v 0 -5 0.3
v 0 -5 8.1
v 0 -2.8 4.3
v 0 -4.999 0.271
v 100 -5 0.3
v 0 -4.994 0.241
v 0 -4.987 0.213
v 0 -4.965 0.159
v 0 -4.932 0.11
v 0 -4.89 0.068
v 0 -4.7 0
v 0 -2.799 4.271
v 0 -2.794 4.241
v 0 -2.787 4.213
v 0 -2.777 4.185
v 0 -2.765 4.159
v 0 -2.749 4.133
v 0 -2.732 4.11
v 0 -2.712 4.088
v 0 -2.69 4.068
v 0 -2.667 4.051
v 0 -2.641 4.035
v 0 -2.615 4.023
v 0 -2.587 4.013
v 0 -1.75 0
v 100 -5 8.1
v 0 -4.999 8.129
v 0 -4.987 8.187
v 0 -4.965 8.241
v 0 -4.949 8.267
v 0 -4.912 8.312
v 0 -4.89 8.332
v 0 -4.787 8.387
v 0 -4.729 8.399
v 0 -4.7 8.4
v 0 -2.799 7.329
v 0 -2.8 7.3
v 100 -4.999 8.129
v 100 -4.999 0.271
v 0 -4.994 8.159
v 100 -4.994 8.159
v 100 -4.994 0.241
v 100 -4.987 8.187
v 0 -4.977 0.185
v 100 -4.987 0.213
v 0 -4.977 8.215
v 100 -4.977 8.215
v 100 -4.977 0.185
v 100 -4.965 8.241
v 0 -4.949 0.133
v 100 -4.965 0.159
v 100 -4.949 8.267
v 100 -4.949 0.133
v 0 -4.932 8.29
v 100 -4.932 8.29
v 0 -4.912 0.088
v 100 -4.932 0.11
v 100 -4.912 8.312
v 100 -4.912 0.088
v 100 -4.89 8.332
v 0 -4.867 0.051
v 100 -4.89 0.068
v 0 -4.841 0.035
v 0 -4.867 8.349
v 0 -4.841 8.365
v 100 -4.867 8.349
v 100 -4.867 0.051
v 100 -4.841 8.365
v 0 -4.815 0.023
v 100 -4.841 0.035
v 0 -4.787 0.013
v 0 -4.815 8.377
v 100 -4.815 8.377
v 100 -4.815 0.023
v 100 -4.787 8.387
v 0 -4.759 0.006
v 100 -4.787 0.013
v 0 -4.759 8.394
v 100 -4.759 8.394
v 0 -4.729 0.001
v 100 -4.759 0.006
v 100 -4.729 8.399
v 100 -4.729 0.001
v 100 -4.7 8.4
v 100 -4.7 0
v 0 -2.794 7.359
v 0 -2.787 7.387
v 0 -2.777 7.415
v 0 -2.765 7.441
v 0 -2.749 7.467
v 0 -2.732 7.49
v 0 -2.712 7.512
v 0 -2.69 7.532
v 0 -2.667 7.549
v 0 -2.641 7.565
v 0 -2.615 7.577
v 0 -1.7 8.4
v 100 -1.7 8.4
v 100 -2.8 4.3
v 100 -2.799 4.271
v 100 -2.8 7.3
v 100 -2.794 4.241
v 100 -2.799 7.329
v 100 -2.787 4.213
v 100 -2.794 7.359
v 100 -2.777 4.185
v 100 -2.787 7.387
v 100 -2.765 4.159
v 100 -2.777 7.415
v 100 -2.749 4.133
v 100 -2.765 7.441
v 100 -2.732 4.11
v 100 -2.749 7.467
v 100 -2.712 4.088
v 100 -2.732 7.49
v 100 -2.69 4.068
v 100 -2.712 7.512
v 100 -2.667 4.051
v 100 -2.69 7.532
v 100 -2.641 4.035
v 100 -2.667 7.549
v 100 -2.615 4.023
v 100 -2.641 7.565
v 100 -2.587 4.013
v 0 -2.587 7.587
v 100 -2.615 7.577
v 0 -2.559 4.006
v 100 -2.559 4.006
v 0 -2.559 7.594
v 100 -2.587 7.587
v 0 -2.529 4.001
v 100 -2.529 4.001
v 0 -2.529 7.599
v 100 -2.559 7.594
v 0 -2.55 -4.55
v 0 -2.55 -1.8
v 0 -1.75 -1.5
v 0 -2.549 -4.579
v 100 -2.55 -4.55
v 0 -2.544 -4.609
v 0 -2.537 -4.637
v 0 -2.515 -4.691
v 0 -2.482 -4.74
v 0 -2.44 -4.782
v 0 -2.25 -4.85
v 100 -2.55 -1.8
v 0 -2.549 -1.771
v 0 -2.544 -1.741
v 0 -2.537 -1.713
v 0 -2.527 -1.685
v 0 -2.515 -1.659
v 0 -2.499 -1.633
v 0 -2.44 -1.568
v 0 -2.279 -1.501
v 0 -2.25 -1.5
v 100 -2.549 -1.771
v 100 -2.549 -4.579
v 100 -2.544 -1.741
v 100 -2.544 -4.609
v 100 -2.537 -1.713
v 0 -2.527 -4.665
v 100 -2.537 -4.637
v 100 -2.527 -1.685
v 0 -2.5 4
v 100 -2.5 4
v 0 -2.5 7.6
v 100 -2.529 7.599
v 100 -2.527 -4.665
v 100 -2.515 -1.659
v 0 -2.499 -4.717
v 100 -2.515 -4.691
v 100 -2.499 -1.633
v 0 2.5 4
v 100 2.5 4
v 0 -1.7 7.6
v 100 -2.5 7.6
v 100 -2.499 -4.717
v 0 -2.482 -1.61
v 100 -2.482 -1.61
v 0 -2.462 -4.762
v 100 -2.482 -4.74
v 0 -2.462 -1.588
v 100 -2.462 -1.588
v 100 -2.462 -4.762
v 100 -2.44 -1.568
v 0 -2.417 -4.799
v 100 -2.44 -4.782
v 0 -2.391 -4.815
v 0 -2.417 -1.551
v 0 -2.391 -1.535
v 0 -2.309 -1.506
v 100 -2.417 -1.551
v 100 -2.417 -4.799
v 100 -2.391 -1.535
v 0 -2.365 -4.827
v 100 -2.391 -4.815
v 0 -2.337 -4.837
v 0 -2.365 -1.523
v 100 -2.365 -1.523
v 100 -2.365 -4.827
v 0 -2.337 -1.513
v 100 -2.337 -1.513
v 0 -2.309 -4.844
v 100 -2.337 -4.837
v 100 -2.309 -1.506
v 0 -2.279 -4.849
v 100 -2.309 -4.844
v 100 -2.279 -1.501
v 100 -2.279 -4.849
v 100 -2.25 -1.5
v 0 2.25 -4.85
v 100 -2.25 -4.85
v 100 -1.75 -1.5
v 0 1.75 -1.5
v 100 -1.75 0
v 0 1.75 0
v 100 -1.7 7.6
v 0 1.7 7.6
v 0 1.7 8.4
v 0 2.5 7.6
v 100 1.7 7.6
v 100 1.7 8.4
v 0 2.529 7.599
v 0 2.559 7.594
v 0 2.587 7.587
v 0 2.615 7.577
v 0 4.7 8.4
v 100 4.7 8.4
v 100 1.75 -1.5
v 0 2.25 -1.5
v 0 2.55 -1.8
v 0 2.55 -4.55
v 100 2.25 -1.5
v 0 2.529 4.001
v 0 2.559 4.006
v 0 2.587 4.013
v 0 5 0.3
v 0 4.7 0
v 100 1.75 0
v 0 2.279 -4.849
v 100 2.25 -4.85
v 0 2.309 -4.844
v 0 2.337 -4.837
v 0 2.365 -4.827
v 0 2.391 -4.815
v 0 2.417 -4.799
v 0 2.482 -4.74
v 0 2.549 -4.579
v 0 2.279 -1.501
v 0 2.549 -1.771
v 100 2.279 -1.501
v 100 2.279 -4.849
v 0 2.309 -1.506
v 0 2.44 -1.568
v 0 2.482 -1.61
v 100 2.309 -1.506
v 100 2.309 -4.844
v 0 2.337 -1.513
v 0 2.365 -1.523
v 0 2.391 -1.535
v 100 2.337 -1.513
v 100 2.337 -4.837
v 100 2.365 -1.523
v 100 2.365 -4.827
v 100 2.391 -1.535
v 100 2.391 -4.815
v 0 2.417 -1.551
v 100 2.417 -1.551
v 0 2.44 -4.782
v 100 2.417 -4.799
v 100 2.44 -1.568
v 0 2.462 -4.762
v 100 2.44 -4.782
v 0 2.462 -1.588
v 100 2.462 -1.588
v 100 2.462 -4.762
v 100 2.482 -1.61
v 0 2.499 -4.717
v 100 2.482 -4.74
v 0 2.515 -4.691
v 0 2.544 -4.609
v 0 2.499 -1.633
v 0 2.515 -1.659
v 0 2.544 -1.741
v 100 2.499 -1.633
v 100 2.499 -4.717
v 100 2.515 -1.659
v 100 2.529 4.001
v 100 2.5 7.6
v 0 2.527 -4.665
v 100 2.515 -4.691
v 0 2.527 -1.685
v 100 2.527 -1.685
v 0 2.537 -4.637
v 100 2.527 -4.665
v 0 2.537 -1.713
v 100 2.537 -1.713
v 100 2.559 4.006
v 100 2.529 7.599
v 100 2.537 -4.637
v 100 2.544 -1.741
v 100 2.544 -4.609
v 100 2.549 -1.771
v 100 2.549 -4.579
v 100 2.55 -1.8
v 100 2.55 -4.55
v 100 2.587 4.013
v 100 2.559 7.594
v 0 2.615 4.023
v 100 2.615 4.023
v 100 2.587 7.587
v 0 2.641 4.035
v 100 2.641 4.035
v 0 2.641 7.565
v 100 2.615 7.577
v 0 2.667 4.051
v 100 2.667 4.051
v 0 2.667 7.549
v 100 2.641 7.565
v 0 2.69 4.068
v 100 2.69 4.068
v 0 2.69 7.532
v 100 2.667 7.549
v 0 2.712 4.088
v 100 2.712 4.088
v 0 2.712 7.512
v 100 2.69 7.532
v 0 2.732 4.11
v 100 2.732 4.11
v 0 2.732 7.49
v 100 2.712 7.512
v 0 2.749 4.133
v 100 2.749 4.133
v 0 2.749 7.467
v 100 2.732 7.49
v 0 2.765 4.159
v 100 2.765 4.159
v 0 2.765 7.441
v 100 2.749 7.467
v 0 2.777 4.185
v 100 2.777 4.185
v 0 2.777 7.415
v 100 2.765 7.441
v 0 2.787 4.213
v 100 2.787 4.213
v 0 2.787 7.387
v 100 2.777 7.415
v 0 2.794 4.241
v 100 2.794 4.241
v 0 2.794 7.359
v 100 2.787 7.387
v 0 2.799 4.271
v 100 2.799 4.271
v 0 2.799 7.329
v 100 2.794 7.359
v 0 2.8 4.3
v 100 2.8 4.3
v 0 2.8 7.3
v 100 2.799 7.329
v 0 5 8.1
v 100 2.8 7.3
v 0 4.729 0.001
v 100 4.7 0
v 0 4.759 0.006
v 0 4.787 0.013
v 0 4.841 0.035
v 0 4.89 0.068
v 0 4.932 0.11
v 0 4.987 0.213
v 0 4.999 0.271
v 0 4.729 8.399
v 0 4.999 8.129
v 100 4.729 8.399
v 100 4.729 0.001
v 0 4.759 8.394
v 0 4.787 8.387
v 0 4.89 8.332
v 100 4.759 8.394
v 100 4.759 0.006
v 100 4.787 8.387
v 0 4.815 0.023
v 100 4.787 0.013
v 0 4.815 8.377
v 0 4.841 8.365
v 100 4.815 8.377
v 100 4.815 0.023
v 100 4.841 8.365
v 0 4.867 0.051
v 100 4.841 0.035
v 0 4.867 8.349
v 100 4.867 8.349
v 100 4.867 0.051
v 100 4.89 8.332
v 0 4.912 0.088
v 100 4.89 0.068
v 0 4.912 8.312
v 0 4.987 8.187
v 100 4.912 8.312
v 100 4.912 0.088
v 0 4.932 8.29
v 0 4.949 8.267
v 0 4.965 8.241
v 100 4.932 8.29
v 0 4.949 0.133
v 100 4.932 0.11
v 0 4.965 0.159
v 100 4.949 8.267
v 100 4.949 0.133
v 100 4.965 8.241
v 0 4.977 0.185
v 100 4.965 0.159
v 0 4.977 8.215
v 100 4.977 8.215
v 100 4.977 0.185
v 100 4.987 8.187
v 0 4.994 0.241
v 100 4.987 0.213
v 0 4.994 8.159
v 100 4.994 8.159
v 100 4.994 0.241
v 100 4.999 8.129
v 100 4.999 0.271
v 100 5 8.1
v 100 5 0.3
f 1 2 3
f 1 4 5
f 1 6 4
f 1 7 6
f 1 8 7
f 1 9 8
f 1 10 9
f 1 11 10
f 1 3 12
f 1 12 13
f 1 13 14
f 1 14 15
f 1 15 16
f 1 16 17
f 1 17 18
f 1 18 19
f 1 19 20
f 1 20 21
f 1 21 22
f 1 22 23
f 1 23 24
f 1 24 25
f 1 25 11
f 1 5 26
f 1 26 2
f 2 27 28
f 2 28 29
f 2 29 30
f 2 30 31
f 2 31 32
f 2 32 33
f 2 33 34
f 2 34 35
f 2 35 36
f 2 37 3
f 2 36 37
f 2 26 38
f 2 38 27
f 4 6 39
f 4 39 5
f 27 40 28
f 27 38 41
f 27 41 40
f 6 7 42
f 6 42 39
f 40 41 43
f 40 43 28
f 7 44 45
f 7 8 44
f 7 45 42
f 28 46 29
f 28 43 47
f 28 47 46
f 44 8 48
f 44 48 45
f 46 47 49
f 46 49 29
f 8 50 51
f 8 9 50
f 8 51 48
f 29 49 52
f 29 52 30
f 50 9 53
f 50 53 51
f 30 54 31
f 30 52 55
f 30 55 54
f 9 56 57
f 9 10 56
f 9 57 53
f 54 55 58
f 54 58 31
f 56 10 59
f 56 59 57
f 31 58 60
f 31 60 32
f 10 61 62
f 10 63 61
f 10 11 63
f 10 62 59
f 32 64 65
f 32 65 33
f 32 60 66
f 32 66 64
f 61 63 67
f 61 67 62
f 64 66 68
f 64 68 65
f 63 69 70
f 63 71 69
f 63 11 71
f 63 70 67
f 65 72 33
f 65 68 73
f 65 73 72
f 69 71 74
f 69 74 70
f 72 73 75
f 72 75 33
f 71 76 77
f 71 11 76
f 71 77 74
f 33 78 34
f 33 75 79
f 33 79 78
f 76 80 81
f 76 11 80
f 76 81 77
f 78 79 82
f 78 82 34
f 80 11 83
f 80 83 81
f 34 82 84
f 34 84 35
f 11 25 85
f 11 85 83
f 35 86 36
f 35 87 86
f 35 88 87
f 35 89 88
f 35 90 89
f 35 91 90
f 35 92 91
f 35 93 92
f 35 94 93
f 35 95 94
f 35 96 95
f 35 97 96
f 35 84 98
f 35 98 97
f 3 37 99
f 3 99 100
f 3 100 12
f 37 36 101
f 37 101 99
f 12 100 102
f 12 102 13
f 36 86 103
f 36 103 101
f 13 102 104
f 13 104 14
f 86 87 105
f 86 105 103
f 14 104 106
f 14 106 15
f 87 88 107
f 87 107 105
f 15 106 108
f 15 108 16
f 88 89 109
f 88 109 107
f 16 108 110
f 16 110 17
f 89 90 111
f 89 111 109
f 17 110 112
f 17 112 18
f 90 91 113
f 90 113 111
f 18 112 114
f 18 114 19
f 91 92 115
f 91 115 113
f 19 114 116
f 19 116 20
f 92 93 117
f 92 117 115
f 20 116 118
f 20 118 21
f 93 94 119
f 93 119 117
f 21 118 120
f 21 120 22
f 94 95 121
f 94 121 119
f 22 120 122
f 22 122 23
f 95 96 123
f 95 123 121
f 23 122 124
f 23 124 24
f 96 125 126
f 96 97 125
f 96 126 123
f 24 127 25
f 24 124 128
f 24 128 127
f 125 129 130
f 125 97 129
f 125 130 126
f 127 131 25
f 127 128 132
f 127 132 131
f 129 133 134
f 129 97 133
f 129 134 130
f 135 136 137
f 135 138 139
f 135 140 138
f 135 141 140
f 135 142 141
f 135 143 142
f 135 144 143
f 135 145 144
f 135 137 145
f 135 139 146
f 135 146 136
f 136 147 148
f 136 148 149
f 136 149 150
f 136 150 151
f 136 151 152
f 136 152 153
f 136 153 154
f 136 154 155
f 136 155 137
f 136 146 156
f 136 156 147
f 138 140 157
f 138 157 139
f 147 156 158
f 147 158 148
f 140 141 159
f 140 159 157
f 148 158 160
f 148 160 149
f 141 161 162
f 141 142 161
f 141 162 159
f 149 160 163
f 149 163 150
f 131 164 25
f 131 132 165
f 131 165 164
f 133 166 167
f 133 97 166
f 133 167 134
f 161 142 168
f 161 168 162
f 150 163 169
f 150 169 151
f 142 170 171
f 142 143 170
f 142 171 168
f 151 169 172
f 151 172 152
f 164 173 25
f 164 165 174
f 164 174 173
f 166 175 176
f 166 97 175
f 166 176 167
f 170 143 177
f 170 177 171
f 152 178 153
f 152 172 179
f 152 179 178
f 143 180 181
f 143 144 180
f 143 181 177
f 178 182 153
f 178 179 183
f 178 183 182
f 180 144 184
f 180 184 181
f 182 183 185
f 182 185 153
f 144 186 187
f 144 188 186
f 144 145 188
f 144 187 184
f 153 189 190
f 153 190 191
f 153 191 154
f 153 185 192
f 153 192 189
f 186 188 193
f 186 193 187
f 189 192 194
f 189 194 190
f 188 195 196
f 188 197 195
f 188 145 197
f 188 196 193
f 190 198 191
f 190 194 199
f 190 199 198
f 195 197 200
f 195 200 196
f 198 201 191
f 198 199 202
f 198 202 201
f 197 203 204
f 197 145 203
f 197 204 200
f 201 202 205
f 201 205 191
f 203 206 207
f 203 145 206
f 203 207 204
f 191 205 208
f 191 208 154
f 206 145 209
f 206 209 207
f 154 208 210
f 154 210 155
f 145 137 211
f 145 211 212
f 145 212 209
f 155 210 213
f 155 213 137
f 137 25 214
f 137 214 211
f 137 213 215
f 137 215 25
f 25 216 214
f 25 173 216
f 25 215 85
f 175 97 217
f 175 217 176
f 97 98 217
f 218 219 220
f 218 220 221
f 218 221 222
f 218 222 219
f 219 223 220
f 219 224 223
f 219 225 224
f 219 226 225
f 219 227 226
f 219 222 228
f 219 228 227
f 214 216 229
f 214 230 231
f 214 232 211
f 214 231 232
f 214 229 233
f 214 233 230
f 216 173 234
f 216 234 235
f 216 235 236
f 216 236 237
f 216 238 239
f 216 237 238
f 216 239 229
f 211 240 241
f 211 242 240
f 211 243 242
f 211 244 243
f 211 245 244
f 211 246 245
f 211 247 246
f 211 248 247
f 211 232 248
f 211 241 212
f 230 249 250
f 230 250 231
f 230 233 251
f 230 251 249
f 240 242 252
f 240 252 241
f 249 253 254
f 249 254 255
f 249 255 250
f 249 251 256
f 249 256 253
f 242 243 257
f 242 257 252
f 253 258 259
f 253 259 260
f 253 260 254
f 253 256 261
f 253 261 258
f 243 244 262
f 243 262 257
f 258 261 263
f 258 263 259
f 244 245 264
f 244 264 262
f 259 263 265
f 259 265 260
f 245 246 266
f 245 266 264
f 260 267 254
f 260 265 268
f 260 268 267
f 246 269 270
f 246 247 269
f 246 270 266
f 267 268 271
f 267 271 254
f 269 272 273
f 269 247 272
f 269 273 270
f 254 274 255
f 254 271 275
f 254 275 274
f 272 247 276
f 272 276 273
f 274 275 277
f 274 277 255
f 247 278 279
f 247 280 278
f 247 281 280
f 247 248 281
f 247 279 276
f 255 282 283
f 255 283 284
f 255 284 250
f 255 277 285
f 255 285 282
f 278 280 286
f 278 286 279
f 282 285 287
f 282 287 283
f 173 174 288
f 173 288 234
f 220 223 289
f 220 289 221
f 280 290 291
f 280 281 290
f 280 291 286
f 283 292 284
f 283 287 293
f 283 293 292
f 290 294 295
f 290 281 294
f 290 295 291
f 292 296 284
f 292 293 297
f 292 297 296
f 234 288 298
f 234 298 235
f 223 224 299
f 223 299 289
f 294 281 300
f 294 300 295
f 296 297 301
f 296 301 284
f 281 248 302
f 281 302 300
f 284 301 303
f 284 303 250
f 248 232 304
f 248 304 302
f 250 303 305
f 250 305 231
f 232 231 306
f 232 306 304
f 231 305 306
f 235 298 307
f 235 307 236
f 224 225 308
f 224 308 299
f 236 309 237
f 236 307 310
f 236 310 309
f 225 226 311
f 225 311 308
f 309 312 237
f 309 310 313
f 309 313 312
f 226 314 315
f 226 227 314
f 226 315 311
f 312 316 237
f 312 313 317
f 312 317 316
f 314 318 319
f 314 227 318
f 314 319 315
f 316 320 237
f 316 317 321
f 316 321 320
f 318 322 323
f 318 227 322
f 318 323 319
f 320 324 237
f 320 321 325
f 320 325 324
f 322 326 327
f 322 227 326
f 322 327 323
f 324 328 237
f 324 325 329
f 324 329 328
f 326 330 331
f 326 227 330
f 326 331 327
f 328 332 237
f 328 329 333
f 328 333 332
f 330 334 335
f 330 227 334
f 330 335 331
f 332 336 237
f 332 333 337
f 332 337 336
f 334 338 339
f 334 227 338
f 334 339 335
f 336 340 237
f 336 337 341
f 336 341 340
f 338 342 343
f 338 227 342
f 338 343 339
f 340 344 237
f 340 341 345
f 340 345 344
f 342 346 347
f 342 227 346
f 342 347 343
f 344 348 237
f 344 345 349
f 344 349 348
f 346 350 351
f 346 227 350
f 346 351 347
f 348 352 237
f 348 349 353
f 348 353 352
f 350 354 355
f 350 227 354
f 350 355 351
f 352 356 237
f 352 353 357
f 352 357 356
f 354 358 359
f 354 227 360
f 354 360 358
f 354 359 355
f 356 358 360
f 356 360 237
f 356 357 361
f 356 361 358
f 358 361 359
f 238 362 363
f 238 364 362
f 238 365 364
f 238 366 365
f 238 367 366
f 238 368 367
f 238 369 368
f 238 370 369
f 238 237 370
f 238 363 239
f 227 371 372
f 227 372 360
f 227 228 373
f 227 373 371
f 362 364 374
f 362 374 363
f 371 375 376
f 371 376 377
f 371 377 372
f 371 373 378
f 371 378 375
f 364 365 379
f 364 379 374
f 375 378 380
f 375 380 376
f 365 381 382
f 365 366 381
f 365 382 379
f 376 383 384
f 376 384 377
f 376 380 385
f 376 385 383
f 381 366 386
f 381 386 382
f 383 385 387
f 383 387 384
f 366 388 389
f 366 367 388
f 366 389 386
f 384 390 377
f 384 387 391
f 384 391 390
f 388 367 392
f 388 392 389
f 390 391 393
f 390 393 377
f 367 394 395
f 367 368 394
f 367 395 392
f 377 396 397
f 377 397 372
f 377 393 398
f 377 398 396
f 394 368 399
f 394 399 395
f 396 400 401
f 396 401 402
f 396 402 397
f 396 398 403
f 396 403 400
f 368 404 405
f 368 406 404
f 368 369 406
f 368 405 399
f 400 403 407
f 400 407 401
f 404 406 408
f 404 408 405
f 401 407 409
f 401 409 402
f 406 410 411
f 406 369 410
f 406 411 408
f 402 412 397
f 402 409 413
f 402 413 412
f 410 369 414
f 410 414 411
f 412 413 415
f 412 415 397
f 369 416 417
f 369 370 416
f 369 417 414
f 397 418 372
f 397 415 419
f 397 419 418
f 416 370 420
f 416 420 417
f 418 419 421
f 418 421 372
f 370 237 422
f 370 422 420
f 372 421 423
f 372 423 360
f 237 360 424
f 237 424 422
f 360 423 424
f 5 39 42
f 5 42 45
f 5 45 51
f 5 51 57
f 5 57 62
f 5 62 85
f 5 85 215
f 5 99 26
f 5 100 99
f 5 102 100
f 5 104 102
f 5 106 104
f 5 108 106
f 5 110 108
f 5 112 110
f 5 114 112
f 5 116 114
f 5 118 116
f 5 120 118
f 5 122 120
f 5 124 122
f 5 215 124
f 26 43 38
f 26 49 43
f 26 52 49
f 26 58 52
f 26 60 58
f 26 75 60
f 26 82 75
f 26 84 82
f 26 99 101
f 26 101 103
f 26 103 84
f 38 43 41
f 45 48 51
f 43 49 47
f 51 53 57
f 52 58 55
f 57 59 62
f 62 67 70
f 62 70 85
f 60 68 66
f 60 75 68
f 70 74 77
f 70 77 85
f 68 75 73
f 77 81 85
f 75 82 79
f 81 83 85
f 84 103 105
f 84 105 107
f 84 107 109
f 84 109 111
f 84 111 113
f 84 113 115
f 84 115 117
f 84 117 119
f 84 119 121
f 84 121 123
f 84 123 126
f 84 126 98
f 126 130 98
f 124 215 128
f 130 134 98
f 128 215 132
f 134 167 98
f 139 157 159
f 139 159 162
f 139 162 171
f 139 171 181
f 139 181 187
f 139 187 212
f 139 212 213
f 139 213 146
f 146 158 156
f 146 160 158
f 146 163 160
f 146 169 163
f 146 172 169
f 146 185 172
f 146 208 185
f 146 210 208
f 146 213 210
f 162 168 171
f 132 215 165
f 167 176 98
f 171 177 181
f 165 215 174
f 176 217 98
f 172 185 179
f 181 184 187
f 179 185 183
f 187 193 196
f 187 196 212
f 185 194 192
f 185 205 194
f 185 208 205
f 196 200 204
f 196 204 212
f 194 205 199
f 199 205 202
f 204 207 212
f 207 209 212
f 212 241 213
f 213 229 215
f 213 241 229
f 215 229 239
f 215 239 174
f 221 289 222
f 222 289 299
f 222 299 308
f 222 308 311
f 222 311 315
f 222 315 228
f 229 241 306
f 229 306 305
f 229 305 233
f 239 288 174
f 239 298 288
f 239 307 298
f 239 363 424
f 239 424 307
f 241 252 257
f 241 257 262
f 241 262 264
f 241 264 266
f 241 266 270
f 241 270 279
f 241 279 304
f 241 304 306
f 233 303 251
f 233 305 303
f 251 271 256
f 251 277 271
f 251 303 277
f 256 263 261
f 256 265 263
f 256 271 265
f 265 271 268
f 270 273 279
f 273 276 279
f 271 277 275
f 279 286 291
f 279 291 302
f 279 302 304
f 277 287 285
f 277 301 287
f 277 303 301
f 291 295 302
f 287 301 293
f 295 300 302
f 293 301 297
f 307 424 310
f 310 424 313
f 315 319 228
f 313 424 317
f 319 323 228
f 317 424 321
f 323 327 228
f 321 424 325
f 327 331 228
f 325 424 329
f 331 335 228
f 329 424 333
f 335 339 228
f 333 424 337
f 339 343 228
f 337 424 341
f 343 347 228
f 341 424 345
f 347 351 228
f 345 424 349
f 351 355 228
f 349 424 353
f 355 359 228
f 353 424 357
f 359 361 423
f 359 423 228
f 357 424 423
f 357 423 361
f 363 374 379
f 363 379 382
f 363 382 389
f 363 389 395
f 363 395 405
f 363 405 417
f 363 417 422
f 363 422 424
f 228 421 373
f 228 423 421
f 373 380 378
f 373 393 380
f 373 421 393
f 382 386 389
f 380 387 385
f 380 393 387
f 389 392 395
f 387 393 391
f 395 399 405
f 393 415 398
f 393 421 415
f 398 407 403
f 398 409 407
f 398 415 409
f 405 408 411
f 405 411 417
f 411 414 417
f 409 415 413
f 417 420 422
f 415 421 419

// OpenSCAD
// Eurorack rail riser
//
// Slides into the threaded-strip channel of a standard Eurorack rail and
// carries a new captive channel on top for the threaded strip. Panels then
// rest on the riser's top face, so they sit `total_h` further out than on the
// bare rail (riser_height + strip_height + strip_lip). Use it to gain depth
// behind modules that are too deep for the case.
//
// Angled cases: where the row you raise meets an unraised neighbour at a
// bend toward the user (a curved desk case), the raised panel edges and the
// riser lean out over the neighbour's edge screws. They clear the
// neighbour's panels, but a screwdriver cannot reach those screws. The
// [Case junction] parameters echo the overlap and warn when it covers the
// screw heads.
//
// Coordinates: X = along the rail, Y = across the rail face, Z = away from
// the rail face. Origin is on the rail's outer face centerline, at the near
// end.
//
// Cross-section (Y-Z plane, looking down +X):
//
//           +--+  +--+            <-- z = total_h               (top)
//           |  +--+  |                top retaining lip (strip_lip)
//           |  strip |            <-- z = riser_height + strip_height
//           | cavity |                (holds the threaded strip)
//           |        |
//           |        |            <-- z = riser_height
//           |  solid |                riser (riser_height tall)
//    =======+--+  +--+=======     <-- z = 0  (rail outer face)
//     rail lip |  |  rail lip         neck through the rail's slot
//           +--+  +--+            <-- z = -rail_lip
//           |  slider|                fills the rail's strip channel
//           +--------+            <-- z = -(rail_lip + rail_channel_depth)
//
// The default channel sizes copy the strip cavity in 2020-adapter.scad,
// which already fits the strip. MEASURE YOUR RAIL before printing: the
// rail_* values are estimates, and the rail's slot opening and lip
// thickness differ between makers (Tiptop, Doepfer, Vector, no-name).
//
// Print orientation: lay the part on its side (one Y face on the bed). The
// cavity roofs then bridge a short span, and the neck, which takes the pull
// of the module screws, has its layers running along the load.
//
// License: MIT, Copyright (c) 2026 Madelyn Yeary. See LICENSE.md at the repo root.

/* [Length] */
// Rail length (mm). 1 HP = 5.08 mm; 84HP = 426.7, so print in segments.
length              = 100;    // [5:1:250]

/* [Rail channel (bottom slider)] */
// Inside width of the rail's strip channel
rail_channel_width  = 5.6;    // [3:0.1:12]
// Inside height of the rail's strip channel, below the lip
rail_channel_depth  = 3.6;    // [1:0.1:6]
// Width of the rail's slot opening between the lips
rail_opening        = 4.0;    // [2.5:0.1:8]
// Thickness of the rail's retaining lip
rail_lip            = 1.5;    // [0.5:0.1:4]
// Gap per side between the slider and the rail (aluminium does not flex)
rail_clearance      = 0.25;   // [0:0.05:0.6]

/* [Riser] */
// Solid height between the rail face and the floor of the new strip cavity.
// Panels lift by riser_height + strip_height + strip_lip.
riser_height        = 4.0;    // [1:0.5:30]
// Y width of the riser body
body_width          = 10.0;   // [6:0.5:30]

/* [Top channel (threaded strip)] */
// Y width of the strip cavity
strip_width         = 5.6;    // [3:0.1:12]
// Z height of the strip cavity
strip_height        = 3.6;    // [1:0.1:6]
// Z thickness of the top retaining lip
strip_lip           = 0.8;    // [0.4:0.1:3]
// Slot through the top lip: 3.4 clears M3, 2.9 clears M2.5
access_slot_width   = 3.4;    // [2:0.1:6]

/* [Case junction] */
// Bend between this row and the unraised row next to it, in degrees.
// Positive = the rows bend toward you (curved desk), 0 = flat case.
junction_angle      = 45;     // [-90:5:90]

/* [Hidden] */
$fn = 64;
epsilon = 0.01;
layer_height = 0.2;           // general utility part
fillet = 0.3;                 // corner break on outer and cavity corners

// Eurorack 3U spacing: 133.35 mm row pitch, 128.5 mm panels, mounting holes
// 3 mm in from the panel edge (122.5 mm apart).
panel_edge_gap   = (133.35 - 128.5) / 2;  // panel edge to the row boundary
hole_inset       = 3.0;                   // panel edge to hole centre
screw_head_r     = 2.75;                  // M3 head

// ---- derived -------------------------------------------------------------

slider_w = rail_channel_width - 2*rail_clearance;
slider_h = rail_channel_depth - rail_clearance;     // clearance at the floor only;
                                                     // the screws pull it up to the lip
neck_w   = rail_opening - 2*rail_clearance;
total_h  = riser_height + strip_height + strip_lip;

echo(str("Slider: ", slider_w, " x ", slider_h, " mm, neck ", neck_w, " mm"));
echo(str("Panels lift by ", total_h, " mm"));

// Overlap at the junction. Work in the raised row's frame: s = distance past
// the row boundary (negative = inside this row), z = height above the rail
// face. Rotating by junction_angle gives the point's position along the
// neighbour's face (t, from the boundary) and in front of it (n).
function along_neighbour(s, z) = s*cos(junction_angle) + z*sin(junction_angle);
function front_of_neighbour(s, z) = -s*sin(junction_angle) + z*cos(junction_angle);

strip_to_boundary = panel_edge_gap + hole_inset;  // strip centre to row boundary
riser_corner      = [-(strip_to_boundary - body_width/2), total_h];
panel_corner      = [-panel_edge_gap, total_h];
screw_head_edge   = strip_to_boundary - screw_head_r; // nearest edge of the
                                                      // neighbour's screw head
riser_t = along_neighbour(riser_corner[0], riser_corner[1]);
panel_t = along_neighbour(panel_corner[0], panel_corner[1]);

echo(str("Junction at ", junction_angle, " deg: riser corner reaches ", riser_t,
         " mm over the neighbour (", front_of_neighbour(riser_corner[0], riser_corner[1]),
         " mm out); panel edge reaches ", panel_t, " mm over (",
         front_of_neighbour(panel_corner[0], panel_corner[1]), " mm out)"));
if (max(riser_t, panel_t) > screw_head_edge)
    echo(str("WARNING: the riser or raised panels cover the neighbour's edge screws",
             " (head edge at ", screw_head_edge, " mm). Mount the neighbour's modules",
             " first, or lower riser_height."));
echo(str("Length = ", length / 5.08, " HP"));

assert(neck_w < slider_w, "the neck must be narrower than the slider, or nothing holds it in the rail");
assert(access_slot_width < strip_width, "the access slot must be narrower than the strip cavity");
assert(body_width - strip_width >= 2, "body_width leaves walls under 1 mm beside the strip cavity");

// ---- 2D cross-section (x = across the rail, y = away from the rail) ------

// A rectangle of bounding-box `size` with corners rounded to radius `r`,
// anchored at the origin like square(). Same helper as 2020-adapter.scad.
module rounded_rect_2d(size, r) {
    if (r <= 0) {
        square(size);
    } else {
        hull()
            for (x = [r, size[0] - r])
                for (y = [r, size[1] - r])
                    translate([x, y]) circle(r);
    }
}

module riser_profile_2d() {
    difference() {
        union() {
            // Riser body + top channel walls.
            translate([-body_width/2, 0])
                rounded_rect_2d([body_width, total_h], fillet);
            // Neck through the rail's lip. Overlaps the body and slider by
            // epsilon so the union fuses.
            translate([-neck_w/2, -rail_lip - epsilon])
                square([neck_w, rail_lip + 2*epsilon]);
            // Slider in the rail's channel.
            translate([-slider_w/2, -rail_lip - slider_h])
                rounded_rect_2d([slider_w, slider_h], fillet);
        }
        // Strip cavity.
        translate([-strip_width/2, riser_height])
            rounded_rect_2d([strip_width, strip_height], fillet);
        // Screw-access slot through the top lip. Kept square so it does not
        // thin the lip.
        translate([-access_slot_width/2, riser_height + strip_height - epsilon])
            square([access_slot_width, strip_lip + 2*epsilon]);
    }
}

// ---- 3D ------------------------------------------------------------------

module rail_riser() {
    // Sweep the cross-section along +X.
    rotate([90, 0, 90])
        linear_extrude(height = length, convexity = 4)
            riser_profile_2d();
}

// One object for the slicer
rail_riser();

// Uncomment to preview just the cross-section:
//riser_profile_2d();
